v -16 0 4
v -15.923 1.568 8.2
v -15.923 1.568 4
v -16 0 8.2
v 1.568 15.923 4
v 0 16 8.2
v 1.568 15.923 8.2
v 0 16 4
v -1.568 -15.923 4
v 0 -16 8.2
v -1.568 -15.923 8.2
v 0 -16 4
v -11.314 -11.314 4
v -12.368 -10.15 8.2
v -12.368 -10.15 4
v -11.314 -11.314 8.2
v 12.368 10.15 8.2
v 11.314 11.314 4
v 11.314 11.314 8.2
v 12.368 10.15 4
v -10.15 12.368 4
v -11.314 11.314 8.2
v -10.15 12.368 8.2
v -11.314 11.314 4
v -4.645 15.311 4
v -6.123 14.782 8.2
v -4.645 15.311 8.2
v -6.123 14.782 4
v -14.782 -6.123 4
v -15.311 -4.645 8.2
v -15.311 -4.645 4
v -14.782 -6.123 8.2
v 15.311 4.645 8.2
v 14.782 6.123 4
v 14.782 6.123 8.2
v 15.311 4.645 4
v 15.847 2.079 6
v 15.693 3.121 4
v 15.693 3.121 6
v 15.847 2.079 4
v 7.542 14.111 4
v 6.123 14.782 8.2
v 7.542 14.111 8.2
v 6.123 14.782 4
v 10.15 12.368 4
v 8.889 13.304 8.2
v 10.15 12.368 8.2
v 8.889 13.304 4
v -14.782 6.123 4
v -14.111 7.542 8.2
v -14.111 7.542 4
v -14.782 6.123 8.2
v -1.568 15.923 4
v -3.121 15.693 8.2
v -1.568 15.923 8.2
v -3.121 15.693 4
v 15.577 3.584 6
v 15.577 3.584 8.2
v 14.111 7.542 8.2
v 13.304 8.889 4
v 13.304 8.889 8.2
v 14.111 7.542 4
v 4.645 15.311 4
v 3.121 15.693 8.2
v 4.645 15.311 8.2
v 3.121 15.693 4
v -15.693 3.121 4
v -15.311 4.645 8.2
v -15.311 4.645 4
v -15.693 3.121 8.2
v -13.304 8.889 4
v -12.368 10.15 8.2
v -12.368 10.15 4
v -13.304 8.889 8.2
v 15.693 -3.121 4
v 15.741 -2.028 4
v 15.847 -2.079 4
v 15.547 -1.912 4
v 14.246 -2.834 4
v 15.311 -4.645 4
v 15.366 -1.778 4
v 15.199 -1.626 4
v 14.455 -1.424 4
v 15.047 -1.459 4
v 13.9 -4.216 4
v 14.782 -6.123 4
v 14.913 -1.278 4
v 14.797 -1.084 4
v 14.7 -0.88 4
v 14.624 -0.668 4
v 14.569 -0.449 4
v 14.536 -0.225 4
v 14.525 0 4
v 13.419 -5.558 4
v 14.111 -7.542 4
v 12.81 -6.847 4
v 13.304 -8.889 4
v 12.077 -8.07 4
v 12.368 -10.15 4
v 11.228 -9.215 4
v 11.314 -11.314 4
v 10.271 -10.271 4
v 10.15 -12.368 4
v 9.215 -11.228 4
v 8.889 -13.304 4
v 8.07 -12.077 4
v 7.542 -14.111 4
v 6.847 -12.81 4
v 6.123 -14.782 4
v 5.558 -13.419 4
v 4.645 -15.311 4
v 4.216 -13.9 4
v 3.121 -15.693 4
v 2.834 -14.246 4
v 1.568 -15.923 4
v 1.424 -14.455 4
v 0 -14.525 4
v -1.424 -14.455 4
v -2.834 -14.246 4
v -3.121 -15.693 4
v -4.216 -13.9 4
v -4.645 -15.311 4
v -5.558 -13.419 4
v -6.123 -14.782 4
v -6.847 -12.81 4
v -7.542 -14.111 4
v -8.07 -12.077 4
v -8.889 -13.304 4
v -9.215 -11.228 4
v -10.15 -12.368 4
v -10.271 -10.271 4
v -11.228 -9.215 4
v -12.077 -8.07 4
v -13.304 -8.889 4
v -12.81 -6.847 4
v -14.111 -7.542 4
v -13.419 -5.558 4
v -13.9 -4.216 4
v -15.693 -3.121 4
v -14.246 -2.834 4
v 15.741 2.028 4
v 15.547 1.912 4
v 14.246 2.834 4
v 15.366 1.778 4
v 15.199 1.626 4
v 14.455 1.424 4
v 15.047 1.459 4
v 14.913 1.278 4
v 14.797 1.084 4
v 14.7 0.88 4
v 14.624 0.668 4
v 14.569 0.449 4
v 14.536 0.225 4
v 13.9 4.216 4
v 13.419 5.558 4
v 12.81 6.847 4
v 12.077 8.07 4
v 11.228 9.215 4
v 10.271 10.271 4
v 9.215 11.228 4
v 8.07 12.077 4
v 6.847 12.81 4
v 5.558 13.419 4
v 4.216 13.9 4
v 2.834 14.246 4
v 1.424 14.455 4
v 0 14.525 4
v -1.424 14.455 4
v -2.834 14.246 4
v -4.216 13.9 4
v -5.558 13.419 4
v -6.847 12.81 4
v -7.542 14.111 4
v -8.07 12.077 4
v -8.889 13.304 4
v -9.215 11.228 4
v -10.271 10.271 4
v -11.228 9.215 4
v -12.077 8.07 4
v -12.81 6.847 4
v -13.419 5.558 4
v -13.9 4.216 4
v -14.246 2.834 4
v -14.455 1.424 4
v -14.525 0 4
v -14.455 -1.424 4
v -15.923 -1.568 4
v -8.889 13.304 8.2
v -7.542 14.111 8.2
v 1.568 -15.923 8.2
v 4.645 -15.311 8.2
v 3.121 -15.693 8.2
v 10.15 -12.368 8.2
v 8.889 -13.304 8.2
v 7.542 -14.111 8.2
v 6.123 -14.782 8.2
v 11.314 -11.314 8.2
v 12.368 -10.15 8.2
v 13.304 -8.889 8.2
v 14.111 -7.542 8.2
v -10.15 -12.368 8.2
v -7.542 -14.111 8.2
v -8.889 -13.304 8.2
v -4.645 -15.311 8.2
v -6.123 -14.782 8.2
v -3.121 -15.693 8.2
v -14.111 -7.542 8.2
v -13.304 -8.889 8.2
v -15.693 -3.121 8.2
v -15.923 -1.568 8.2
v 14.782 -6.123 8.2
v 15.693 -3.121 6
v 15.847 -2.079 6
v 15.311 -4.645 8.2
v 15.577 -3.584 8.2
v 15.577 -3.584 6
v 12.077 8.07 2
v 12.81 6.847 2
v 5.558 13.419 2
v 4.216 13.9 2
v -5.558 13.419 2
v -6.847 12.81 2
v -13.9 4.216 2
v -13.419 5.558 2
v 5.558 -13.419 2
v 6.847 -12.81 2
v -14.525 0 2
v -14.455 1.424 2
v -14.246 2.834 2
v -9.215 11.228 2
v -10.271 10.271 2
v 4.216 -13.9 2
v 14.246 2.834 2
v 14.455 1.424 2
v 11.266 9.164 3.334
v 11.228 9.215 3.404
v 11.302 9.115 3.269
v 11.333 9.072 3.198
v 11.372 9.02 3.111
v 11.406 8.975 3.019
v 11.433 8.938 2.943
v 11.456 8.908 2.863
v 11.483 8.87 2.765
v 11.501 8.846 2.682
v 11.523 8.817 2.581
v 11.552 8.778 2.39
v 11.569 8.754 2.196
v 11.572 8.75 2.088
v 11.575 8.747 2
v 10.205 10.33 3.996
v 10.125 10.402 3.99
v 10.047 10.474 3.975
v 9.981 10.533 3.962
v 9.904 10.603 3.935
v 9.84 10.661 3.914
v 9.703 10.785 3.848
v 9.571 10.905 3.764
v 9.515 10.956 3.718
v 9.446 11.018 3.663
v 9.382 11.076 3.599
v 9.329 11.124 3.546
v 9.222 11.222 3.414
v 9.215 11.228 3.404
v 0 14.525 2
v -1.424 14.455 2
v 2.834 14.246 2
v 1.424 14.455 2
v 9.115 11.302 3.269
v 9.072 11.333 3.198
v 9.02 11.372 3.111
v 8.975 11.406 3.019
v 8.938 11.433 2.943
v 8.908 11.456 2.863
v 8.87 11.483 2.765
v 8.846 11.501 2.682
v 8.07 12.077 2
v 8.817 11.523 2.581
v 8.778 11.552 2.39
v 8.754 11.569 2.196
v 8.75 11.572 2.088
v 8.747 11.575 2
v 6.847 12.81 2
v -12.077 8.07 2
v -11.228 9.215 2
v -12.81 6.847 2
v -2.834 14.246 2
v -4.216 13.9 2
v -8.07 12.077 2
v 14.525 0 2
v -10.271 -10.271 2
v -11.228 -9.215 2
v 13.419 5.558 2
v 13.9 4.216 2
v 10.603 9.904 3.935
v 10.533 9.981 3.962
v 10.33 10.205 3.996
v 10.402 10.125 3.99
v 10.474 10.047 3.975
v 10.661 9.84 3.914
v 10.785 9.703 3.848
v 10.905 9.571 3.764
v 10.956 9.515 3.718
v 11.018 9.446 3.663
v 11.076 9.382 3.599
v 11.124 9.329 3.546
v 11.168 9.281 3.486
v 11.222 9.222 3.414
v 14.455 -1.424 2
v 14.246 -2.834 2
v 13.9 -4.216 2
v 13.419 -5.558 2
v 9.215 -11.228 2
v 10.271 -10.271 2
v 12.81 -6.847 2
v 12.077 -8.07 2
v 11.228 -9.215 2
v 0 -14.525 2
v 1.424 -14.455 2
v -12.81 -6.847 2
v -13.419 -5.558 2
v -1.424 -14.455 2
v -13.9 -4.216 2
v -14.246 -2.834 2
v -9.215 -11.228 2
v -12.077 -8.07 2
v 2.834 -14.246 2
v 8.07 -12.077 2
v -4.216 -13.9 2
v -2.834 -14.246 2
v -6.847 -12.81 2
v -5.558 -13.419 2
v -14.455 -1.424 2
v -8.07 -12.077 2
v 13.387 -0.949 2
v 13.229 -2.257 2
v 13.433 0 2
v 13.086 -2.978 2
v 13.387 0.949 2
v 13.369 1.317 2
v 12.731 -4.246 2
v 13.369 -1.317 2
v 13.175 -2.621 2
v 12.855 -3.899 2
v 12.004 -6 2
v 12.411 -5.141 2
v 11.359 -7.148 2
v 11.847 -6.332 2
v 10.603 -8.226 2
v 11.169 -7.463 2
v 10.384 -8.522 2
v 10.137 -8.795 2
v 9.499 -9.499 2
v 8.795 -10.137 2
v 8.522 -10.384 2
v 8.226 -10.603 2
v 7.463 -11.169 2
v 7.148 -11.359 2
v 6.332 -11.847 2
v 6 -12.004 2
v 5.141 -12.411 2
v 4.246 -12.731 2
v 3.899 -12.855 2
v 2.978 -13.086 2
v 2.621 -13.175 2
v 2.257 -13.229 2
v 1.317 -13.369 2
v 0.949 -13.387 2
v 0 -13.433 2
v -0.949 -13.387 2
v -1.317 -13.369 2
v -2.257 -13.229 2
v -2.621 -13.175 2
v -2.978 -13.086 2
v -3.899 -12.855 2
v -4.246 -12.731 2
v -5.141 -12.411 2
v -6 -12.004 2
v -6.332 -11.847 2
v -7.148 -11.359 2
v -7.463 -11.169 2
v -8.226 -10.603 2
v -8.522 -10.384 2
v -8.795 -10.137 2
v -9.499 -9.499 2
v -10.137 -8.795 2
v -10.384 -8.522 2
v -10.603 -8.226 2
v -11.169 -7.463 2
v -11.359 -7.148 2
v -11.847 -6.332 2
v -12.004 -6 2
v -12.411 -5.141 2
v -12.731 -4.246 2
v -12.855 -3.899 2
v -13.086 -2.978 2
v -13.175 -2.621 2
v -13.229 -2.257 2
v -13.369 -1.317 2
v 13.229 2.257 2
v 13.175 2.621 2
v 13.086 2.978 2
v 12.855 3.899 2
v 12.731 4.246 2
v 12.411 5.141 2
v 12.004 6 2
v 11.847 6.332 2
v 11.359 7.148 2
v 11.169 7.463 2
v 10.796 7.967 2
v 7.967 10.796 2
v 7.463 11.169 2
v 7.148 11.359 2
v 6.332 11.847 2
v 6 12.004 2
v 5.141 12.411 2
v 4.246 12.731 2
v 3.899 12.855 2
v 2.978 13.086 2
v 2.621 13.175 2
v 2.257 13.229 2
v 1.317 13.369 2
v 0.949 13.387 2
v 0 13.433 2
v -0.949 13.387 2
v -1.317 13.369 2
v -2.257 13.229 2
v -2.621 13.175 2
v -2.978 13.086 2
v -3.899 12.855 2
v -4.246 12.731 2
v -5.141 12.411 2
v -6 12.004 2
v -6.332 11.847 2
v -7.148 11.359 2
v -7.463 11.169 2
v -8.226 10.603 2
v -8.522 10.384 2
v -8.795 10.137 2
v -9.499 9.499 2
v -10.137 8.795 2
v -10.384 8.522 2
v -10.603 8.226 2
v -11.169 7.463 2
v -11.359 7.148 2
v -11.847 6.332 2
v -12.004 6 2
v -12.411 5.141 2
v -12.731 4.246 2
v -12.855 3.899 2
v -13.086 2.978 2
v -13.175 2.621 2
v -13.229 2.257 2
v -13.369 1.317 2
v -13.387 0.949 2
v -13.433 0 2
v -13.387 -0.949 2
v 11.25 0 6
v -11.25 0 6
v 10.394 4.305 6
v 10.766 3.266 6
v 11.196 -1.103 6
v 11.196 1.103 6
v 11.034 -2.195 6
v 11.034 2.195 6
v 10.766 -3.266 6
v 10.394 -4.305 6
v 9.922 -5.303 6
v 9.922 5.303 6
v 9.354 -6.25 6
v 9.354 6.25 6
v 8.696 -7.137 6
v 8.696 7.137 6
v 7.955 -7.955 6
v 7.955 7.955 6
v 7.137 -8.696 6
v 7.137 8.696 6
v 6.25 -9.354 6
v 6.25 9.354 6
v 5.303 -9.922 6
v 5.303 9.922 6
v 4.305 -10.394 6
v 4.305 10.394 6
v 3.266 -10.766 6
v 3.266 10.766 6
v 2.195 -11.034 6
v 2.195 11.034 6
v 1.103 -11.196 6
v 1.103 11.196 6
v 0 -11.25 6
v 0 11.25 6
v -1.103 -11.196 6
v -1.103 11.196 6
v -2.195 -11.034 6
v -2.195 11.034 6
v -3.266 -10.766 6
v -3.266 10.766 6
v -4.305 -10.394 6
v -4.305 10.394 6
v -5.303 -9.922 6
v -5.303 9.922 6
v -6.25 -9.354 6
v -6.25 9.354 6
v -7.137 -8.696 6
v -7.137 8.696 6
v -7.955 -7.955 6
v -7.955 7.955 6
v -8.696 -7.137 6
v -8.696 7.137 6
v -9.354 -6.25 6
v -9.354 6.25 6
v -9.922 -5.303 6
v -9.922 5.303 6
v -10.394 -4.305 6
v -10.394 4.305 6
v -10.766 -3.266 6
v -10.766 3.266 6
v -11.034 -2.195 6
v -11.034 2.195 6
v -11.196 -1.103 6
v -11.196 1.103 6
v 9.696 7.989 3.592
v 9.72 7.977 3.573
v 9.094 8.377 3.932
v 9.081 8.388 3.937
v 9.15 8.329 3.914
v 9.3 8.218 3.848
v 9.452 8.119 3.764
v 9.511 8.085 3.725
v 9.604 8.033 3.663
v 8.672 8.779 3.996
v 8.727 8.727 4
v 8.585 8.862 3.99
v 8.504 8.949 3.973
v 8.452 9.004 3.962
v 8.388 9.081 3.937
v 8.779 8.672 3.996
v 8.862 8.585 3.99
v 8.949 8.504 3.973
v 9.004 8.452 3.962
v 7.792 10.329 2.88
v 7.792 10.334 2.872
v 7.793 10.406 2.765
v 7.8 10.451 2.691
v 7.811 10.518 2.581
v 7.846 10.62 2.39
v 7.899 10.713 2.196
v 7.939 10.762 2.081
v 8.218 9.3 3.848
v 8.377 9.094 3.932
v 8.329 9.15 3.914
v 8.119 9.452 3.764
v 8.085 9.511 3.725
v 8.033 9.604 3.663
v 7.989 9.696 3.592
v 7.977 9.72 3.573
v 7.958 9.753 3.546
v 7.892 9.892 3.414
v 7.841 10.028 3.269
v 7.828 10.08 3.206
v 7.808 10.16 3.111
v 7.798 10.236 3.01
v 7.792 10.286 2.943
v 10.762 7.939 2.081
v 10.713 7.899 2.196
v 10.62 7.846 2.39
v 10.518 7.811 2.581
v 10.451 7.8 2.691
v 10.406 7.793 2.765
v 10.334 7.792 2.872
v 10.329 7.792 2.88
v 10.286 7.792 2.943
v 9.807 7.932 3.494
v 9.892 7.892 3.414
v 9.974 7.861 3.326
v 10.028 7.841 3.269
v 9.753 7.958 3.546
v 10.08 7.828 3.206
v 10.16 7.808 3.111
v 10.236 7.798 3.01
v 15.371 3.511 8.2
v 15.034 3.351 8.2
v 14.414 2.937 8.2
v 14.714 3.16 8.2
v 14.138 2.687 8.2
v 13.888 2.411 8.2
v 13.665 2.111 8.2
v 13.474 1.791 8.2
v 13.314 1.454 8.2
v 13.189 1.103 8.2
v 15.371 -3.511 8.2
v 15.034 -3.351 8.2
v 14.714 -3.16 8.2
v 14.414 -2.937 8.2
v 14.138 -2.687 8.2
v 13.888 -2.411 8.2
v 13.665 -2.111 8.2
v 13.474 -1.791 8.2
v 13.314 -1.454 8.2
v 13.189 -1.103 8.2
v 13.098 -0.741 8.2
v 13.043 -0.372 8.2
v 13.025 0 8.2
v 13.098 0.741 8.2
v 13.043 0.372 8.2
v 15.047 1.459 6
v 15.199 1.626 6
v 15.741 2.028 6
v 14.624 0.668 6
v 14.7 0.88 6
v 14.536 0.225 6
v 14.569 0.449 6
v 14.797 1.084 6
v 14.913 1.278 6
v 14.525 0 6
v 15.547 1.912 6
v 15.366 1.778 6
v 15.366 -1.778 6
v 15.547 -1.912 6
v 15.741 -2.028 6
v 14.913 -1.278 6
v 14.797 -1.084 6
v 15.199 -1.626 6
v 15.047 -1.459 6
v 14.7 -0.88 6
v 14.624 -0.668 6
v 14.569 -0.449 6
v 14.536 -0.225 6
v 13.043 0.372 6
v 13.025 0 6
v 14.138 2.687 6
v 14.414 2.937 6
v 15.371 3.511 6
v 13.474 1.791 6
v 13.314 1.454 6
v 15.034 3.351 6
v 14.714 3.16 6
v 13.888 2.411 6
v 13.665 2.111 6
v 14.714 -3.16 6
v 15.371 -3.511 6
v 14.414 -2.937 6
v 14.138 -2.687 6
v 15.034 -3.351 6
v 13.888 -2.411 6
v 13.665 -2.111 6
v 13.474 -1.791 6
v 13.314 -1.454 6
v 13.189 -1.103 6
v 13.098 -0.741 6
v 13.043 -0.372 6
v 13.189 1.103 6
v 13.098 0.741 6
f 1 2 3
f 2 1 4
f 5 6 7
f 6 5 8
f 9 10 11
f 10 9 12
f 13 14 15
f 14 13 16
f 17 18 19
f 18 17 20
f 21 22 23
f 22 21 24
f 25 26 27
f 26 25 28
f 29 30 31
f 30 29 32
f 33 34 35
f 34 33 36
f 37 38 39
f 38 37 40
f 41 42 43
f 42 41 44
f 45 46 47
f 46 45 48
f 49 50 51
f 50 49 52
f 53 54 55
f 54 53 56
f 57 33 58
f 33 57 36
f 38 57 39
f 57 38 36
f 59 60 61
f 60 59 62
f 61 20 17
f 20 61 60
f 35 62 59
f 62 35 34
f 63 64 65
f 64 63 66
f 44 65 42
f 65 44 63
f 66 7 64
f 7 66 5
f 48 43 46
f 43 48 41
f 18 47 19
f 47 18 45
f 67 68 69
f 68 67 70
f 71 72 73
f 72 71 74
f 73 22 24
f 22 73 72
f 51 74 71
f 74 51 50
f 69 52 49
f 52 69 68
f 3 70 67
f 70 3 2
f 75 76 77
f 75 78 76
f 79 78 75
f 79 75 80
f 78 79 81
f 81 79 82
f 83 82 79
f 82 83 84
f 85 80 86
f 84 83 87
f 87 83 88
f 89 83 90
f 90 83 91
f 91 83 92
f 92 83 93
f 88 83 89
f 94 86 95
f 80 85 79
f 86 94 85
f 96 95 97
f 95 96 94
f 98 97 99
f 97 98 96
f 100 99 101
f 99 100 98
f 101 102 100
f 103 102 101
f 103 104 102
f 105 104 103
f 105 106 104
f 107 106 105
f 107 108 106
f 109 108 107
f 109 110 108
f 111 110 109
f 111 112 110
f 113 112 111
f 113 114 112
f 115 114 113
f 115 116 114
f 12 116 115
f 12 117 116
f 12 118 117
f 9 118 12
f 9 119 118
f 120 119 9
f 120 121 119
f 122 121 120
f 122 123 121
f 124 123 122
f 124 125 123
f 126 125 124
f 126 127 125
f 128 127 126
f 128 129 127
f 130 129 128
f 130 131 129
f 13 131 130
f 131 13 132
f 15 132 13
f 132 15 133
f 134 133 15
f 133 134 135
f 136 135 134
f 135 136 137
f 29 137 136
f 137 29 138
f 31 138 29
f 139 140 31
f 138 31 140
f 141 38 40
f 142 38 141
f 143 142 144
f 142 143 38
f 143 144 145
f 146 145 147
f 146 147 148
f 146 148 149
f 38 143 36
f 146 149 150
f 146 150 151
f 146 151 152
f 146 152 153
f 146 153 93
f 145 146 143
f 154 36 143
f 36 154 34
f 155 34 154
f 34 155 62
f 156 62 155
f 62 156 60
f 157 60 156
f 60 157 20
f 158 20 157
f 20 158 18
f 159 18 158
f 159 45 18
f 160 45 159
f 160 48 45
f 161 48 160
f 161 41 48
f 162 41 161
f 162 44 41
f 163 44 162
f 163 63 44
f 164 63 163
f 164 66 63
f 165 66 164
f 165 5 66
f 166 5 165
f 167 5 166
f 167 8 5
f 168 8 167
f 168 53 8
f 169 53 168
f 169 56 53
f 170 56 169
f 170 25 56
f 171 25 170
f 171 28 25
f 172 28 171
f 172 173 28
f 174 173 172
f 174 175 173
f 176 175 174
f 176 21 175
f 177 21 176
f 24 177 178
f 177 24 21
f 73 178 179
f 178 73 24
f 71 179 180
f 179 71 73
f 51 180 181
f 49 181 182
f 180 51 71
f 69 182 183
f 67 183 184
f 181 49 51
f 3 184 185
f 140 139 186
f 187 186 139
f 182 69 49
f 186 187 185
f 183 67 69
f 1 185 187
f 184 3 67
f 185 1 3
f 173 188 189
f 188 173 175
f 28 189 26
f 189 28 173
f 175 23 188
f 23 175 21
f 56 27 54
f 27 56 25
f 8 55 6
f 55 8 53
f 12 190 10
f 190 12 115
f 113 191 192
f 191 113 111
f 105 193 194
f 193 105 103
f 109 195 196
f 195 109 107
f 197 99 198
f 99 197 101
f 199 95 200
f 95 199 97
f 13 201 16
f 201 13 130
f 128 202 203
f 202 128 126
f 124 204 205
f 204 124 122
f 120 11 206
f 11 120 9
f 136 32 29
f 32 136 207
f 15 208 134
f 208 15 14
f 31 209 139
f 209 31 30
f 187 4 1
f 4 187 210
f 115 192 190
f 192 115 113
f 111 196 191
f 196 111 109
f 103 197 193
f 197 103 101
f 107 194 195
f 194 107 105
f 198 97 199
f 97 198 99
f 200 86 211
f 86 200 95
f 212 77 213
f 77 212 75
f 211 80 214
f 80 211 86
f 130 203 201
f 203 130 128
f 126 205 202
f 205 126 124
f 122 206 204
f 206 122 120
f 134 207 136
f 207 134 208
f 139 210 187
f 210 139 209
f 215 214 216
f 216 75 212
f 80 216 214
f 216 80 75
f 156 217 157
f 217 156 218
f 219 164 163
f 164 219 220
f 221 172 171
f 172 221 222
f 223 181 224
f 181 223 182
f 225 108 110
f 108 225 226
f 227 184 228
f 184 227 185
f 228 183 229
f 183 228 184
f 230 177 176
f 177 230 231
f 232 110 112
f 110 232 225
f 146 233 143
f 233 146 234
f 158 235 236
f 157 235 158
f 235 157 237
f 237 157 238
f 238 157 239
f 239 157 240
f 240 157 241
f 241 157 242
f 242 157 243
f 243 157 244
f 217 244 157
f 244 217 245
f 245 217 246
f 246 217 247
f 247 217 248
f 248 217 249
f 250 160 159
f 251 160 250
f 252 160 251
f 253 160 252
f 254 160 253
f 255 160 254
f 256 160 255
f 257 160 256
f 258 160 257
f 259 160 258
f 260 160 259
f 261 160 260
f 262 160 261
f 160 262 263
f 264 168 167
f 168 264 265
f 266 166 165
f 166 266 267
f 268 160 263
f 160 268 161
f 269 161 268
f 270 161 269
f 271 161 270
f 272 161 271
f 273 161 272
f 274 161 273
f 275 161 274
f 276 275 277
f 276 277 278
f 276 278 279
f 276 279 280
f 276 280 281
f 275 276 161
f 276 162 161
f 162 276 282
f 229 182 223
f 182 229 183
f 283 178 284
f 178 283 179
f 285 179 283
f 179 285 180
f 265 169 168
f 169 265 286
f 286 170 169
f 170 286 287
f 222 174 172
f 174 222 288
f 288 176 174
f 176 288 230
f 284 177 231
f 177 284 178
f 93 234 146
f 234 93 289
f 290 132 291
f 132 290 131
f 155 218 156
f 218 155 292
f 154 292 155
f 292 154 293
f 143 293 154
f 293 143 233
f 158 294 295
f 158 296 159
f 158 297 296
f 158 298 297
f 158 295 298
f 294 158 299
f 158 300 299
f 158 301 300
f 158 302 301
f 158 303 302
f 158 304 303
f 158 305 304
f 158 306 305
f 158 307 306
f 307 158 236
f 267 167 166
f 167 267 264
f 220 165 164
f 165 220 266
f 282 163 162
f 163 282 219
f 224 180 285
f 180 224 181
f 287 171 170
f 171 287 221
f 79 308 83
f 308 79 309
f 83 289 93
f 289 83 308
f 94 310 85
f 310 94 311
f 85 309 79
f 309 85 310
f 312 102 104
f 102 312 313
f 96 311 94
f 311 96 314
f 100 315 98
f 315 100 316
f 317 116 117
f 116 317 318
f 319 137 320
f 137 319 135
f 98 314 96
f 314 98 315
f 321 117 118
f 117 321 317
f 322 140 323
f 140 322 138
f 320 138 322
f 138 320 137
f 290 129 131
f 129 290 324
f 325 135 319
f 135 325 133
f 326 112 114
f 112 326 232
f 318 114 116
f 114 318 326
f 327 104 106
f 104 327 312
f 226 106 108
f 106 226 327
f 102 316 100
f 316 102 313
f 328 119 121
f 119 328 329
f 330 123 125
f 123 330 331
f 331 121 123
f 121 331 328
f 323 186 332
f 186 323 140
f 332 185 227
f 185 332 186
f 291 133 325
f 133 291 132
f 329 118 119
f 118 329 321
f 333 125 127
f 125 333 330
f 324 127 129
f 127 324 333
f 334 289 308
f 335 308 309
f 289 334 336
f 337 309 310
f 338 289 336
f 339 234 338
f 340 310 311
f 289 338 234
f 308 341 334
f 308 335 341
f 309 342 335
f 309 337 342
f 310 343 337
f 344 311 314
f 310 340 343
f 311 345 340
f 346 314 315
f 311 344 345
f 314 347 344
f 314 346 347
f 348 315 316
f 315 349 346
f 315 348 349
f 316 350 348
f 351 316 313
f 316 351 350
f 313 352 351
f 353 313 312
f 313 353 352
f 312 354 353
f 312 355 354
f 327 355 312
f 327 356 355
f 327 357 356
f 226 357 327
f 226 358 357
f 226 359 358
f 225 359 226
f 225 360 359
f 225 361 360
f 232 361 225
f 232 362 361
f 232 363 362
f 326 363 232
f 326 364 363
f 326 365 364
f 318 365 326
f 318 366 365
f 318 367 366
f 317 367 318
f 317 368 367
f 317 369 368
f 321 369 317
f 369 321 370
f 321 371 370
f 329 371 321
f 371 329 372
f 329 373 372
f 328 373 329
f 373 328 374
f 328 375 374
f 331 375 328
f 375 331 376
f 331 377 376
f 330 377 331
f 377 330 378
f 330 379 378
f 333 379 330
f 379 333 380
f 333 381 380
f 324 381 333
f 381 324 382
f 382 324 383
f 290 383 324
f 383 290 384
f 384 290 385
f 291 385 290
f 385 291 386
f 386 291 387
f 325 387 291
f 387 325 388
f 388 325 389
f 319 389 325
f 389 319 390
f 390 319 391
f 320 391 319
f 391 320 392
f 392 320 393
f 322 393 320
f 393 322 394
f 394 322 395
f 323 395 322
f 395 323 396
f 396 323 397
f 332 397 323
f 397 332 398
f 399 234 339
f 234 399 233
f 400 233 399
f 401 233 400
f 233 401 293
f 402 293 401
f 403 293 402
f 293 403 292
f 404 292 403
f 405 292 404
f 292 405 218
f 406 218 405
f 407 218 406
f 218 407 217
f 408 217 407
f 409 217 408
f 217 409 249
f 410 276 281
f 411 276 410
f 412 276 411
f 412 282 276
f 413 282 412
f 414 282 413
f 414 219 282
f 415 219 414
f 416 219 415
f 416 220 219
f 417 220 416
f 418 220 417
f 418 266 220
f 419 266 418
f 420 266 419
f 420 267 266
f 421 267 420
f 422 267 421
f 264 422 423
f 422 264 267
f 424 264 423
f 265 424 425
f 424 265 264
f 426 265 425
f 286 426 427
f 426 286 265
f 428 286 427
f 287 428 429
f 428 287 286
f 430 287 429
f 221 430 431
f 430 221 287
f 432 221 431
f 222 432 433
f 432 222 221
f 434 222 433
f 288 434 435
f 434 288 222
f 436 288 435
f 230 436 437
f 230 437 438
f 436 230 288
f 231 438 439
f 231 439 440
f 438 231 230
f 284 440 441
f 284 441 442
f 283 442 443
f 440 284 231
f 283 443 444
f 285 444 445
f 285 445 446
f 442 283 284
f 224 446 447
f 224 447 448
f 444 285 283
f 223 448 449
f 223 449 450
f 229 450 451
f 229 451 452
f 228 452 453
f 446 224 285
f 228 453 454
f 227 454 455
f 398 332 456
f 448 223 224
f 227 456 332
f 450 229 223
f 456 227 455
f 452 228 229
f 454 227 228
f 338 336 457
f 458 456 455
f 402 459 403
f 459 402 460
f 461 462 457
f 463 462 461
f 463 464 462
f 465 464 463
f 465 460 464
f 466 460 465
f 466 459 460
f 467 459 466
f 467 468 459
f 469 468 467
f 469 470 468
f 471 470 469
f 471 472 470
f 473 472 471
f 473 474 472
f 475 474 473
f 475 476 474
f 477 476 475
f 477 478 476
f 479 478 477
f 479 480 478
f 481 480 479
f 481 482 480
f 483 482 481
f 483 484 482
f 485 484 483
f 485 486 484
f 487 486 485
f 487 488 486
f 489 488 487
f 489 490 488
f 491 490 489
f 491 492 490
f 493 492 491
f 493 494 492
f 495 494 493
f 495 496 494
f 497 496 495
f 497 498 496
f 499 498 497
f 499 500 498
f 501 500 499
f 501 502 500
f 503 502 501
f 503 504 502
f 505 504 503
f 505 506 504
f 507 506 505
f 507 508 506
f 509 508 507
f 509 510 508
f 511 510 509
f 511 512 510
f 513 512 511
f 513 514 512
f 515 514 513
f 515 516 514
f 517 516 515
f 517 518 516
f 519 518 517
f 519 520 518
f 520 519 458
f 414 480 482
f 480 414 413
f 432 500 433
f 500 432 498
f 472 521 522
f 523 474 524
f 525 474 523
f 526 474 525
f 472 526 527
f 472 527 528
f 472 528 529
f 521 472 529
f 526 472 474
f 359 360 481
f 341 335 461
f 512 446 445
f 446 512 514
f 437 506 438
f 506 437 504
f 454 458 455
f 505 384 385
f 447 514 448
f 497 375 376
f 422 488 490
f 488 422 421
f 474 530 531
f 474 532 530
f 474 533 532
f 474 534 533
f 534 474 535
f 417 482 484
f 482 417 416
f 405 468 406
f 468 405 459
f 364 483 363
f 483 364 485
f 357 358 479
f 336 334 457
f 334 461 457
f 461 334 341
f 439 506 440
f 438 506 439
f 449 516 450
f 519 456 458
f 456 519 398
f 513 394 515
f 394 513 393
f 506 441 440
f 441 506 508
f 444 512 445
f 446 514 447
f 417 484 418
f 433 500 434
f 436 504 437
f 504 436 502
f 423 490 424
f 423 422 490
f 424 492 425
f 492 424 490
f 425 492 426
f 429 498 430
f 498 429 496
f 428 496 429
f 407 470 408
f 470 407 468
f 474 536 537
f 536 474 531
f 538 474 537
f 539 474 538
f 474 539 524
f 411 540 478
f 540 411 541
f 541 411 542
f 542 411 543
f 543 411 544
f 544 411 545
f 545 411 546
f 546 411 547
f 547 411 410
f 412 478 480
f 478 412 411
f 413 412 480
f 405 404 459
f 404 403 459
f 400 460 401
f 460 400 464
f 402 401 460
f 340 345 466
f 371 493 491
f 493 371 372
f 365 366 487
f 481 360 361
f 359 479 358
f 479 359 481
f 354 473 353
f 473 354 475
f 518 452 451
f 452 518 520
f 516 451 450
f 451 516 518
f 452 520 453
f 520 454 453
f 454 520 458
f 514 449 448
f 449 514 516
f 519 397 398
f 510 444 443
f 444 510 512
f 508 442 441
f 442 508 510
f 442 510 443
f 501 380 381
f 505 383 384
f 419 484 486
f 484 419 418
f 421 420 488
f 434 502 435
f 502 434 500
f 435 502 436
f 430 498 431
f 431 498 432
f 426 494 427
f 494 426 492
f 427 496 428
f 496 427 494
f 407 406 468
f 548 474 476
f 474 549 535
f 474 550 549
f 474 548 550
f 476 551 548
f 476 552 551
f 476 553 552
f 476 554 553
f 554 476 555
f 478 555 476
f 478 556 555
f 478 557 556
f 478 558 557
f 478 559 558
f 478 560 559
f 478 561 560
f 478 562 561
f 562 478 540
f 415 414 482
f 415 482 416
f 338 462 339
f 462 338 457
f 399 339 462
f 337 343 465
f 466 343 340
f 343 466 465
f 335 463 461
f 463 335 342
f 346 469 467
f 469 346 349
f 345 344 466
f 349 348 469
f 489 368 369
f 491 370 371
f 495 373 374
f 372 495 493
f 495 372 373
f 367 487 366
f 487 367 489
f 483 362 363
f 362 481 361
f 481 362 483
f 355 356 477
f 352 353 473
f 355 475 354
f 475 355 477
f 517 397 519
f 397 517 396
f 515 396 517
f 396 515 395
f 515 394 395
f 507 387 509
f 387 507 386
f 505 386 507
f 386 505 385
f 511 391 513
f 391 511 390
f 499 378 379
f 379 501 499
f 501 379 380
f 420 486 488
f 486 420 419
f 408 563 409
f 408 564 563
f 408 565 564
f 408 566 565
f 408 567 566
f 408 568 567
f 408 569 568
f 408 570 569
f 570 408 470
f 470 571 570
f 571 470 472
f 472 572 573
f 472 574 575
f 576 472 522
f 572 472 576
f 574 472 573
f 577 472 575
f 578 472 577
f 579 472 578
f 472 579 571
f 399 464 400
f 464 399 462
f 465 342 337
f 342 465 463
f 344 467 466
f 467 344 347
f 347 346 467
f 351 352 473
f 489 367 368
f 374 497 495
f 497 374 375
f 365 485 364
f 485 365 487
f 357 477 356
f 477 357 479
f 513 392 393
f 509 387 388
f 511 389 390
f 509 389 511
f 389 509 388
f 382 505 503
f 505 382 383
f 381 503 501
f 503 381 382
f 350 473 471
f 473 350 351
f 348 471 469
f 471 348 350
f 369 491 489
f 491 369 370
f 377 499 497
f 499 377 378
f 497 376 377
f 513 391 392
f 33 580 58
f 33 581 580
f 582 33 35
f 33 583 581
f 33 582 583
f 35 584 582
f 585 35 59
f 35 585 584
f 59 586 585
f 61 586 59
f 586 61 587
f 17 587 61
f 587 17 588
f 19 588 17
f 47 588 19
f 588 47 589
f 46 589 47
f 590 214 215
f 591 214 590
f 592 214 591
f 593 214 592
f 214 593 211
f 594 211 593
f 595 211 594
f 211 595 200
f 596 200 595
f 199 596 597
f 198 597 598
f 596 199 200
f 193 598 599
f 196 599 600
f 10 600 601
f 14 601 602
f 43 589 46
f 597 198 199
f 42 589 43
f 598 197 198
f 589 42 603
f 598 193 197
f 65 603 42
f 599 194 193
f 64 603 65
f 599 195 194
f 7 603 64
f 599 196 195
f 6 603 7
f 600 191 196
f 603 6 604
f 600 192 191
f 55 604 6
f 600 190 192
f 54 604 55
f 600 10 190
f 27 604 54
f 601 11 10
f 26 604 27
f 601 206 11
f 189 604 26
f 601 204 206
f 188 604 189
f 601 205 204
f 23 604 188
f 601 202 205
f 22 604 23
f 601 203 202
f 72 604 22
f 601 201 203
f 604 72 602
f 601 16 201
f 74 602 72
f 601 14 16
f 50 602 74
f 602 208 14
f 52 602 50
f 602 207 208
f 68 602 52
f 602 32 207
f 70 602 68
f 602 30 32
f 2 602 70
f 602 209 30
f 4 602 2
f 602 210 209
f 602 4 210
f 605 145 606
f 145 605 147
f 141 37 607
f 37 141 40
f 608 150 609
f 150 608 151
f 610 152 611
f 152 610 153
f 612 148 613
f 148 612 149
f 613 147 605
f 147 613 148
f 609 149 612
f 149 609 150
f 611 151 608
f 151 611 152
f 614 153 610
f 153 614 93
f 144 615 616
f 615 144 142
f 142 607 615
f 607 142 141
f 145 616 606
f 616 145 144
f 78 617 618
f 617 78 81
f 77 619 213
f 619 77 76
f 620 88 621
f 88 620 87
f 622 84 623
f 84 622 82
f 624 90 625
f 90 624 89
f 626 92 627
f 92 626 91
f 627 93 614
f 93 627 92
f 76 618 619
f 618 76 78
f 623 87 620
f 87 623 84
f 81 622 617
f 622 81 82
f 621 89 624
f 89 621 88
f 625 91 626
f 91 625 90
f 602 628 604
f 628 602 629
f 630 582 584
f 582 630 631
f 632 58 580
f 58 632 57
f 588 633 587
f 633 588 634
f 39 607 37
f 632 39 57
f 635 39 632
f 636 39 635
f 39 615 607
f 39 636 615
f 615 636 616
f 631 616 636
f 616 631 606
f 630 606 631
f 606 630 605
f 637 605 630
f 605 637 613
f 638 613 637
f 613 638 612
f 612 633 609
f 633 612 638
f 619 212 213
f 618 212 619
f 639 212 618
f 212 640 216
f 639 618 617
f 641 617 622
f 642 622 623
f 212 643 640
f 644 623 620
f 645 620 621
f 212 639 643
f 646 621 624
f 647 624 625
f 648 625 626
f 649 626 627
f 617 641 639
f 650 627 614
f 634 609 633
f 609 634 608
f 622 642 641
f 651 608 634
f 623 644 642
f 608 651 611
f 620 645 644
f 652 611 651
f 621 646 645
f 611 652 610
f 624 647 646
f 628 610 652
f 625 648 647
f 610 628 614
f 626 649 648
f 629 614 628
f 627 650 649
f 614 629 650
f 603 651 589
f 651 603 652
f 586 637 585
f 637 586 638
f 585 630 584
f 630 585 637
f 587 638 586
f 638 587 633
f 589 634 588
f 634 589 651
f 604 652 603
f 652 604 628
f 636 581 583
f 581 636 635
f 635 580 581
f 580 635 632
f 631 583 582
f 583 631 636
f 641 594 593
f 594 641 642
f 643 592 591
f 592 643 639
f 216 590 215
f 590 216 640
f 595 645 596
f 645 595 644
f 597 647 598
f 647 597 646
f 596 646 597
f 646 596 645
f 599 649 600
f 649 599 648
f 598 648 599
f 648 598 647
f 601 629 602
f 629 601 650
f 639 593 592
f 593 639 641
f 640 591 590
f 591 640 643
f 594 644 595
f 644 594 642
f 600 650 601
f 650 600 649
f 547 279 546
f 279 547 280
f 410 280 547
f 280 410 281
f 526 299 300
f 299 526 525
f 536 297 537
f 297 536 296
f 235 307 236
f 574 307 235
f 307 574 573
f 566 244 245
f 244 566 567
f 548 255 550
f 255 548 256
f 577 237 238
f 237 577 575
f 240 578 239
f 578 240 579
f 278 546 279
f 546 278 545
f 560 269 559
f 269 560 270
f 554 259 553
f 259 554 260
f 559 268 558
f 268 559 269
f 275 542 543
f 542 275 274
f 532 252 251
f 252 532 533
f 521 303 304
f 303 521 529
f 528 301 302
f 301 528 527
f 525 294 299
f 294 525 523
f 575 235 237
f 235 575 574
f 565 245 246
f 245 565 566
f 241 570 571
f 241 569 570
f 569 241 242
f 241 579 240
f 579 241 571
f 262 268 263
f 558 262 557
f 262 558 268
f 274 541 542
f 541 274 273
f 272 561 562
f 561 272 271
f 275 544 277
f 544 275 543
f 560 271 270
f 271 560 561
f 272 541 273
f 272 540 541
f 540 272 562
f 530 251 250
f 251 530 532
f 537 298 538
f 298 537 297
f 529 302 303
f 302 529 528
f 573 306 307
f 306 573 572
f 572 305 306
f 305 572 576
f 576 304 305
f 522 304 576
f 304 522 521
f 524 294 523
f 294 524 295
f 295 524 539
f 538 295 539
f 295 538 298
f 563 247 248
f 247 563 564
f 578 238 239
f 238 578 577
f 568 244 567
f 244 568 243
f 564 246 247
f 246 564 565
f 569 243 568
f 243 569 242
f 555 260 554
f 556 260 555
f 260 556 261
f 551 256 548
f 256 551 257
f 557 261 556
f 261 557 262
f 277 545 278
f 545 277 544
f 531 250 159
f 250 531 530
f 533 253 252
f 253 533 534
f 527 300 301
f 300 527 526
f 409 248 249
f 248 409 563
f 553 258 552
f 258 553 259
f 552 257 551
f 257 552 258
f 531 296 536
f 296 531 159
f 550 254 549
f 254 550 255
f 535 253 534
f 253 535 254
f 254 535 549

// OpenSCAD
//lol speaker retainer
// the 8ohm speaker included with the Circuit Sword has an offset.

$fn=64;

spkinsidedia=29;

spkinsidez=5.6;

ridgeheight=spkinsidez-4.14;

//shallowend=3.4;
shallowend=6.49/2;

speakerdia=28.25;

contactwidth=6;

oz=4;

pegd=4.6;
opegd=7.6;

id=29.05;
od=32;
iz=4;
mz=8.2;

sd=28.5;
sz=6;


final_part();

//intersection(){
//    cube(od);
//final_part();
//}

module final_part(){
difference() {
    main_body();
    
    //bottom cup
    difference() {
    cylinder(d=od, h=iz);
    cylinder(d=id, h=iz);
    }

    //speaker slug
    speaker_slug();

    
    //peg
    translate([id/2+pegd/2,0,0])
    cylinder(d=pegd, h=mz);

    //outer peg
    translate([id/2+pegd/2,0,mz-(mz-sz)])
    #cylinder(d=opegd, h=mz-sz);
    
    //inner cut
    //cylinder(d=sd-4, h=mz);
    
    translate([0,0,2])
    rotate([90,0,135])
    #cylinder(h=od, d=4);

    }    
}

// main block
module main_body() {
    cylinder(d=od, h=mz);
}

module speaker_slug() {
    cylinder(d=id, h=sz-4);
    translate([0,0,sz-6])
    #cylinder(d1=id, d2=sd-6, h=6);    
}
// ugh lets try again
//// cap end
//translate([0,0,-oz+.6])
//color("green") cylinder(d=od, h=oz);
////translate([0,0,.6])
//difference(){
//translate([0,0,.6])
////#color("green") cylinder(d=od, h=3);
//color("purple") cylinder(d1=id-4, d2=id, h=2.4);
//translate([0,0,3])
//#color("purple") cylinder(d=id, h=4);
//    translate([0,0,.6])
//    difference() {
//    cylinder(d=od, h=4);
//    cylinder(d=id, h=4);
//    }
//}




// starting all over, all this crap below is dumb
//cylinder(d=spkinsidedia, h=spkinsidez-ridgeheight);
//
//translate([0,0,-ridgeheight])
//cylinder(d=spkinsidedia-4, h=spkinsidez);

//linear_extrude(height=.6)
//arc(21/2, 4, 300);

//difference(){
//    translate([0,0,-4])
//    cylinder(h=4, d=spkinsidedia);
//    translate([0,0,-4])
//
//    #cylinder(h=4, d1=speakerdia-3, d2=speakerdia);
//}
//
//translate([0,0,-4])
//cylinder(d=spkinsidedia, h=.6);
//
//difference() {
//    //outside rim
//    cylinder(d=spkinsidedia, h=shallowend);
//
//    //inside shape
//    cylinder(d=speakerdia, h=shallowend);
//    
//    translate([-contactwidth/2,0,0])
////    #cube([contactwidth, spkinsidedia, shallowend]);
//hull() {
//translate([-contactwidth,0,shallowend])
//cube([contactwidth*2, spkinsidedia,0.2]);
//translate([-contactwidth/4,0,])
//cube([contactwidth/2, spkinsidedia,0.2]);
//    
//}    
//
//}
//
//module arc(radius, thick, angle){
//	intersection(){
//		union(){
//			rights = floor(angle/90);
//			remain = angle-rights*90;
//			if(angle > 90){
//				for(i = [0:rights-1]){
//					rotate(i*90-(rights-1)*90/2){
//						polygon([[0, 0], [radius+thick, (radius+thick)*tan(90/2)], [radius+thick, -(radius+thick)*tan(90/2)]]);
//					}
//				}
//				rotate(-(rights)*90/2)
//					polygon([[0, 0], [radius+thick, 0], [radius+thick, -(radius+thick)*tan(remain/2)]]);
//				rotate((rights)*90/2)
//					polygon([[0, 0], [radius+thick, (radius+thick)*tan(remain/2)], [radius+thick, 0]]);
//			}else{
//				polygon([[0, 0], [radius+thick, (radius+thick)*tan(angle/2)], [radius+thick, -(radius+thick)*tan(angle/2)]]);
//			}
//		}
//		difference(){
//			circle(radius+thick);
//			circle(radius);
//		}
//	}
//}
//
